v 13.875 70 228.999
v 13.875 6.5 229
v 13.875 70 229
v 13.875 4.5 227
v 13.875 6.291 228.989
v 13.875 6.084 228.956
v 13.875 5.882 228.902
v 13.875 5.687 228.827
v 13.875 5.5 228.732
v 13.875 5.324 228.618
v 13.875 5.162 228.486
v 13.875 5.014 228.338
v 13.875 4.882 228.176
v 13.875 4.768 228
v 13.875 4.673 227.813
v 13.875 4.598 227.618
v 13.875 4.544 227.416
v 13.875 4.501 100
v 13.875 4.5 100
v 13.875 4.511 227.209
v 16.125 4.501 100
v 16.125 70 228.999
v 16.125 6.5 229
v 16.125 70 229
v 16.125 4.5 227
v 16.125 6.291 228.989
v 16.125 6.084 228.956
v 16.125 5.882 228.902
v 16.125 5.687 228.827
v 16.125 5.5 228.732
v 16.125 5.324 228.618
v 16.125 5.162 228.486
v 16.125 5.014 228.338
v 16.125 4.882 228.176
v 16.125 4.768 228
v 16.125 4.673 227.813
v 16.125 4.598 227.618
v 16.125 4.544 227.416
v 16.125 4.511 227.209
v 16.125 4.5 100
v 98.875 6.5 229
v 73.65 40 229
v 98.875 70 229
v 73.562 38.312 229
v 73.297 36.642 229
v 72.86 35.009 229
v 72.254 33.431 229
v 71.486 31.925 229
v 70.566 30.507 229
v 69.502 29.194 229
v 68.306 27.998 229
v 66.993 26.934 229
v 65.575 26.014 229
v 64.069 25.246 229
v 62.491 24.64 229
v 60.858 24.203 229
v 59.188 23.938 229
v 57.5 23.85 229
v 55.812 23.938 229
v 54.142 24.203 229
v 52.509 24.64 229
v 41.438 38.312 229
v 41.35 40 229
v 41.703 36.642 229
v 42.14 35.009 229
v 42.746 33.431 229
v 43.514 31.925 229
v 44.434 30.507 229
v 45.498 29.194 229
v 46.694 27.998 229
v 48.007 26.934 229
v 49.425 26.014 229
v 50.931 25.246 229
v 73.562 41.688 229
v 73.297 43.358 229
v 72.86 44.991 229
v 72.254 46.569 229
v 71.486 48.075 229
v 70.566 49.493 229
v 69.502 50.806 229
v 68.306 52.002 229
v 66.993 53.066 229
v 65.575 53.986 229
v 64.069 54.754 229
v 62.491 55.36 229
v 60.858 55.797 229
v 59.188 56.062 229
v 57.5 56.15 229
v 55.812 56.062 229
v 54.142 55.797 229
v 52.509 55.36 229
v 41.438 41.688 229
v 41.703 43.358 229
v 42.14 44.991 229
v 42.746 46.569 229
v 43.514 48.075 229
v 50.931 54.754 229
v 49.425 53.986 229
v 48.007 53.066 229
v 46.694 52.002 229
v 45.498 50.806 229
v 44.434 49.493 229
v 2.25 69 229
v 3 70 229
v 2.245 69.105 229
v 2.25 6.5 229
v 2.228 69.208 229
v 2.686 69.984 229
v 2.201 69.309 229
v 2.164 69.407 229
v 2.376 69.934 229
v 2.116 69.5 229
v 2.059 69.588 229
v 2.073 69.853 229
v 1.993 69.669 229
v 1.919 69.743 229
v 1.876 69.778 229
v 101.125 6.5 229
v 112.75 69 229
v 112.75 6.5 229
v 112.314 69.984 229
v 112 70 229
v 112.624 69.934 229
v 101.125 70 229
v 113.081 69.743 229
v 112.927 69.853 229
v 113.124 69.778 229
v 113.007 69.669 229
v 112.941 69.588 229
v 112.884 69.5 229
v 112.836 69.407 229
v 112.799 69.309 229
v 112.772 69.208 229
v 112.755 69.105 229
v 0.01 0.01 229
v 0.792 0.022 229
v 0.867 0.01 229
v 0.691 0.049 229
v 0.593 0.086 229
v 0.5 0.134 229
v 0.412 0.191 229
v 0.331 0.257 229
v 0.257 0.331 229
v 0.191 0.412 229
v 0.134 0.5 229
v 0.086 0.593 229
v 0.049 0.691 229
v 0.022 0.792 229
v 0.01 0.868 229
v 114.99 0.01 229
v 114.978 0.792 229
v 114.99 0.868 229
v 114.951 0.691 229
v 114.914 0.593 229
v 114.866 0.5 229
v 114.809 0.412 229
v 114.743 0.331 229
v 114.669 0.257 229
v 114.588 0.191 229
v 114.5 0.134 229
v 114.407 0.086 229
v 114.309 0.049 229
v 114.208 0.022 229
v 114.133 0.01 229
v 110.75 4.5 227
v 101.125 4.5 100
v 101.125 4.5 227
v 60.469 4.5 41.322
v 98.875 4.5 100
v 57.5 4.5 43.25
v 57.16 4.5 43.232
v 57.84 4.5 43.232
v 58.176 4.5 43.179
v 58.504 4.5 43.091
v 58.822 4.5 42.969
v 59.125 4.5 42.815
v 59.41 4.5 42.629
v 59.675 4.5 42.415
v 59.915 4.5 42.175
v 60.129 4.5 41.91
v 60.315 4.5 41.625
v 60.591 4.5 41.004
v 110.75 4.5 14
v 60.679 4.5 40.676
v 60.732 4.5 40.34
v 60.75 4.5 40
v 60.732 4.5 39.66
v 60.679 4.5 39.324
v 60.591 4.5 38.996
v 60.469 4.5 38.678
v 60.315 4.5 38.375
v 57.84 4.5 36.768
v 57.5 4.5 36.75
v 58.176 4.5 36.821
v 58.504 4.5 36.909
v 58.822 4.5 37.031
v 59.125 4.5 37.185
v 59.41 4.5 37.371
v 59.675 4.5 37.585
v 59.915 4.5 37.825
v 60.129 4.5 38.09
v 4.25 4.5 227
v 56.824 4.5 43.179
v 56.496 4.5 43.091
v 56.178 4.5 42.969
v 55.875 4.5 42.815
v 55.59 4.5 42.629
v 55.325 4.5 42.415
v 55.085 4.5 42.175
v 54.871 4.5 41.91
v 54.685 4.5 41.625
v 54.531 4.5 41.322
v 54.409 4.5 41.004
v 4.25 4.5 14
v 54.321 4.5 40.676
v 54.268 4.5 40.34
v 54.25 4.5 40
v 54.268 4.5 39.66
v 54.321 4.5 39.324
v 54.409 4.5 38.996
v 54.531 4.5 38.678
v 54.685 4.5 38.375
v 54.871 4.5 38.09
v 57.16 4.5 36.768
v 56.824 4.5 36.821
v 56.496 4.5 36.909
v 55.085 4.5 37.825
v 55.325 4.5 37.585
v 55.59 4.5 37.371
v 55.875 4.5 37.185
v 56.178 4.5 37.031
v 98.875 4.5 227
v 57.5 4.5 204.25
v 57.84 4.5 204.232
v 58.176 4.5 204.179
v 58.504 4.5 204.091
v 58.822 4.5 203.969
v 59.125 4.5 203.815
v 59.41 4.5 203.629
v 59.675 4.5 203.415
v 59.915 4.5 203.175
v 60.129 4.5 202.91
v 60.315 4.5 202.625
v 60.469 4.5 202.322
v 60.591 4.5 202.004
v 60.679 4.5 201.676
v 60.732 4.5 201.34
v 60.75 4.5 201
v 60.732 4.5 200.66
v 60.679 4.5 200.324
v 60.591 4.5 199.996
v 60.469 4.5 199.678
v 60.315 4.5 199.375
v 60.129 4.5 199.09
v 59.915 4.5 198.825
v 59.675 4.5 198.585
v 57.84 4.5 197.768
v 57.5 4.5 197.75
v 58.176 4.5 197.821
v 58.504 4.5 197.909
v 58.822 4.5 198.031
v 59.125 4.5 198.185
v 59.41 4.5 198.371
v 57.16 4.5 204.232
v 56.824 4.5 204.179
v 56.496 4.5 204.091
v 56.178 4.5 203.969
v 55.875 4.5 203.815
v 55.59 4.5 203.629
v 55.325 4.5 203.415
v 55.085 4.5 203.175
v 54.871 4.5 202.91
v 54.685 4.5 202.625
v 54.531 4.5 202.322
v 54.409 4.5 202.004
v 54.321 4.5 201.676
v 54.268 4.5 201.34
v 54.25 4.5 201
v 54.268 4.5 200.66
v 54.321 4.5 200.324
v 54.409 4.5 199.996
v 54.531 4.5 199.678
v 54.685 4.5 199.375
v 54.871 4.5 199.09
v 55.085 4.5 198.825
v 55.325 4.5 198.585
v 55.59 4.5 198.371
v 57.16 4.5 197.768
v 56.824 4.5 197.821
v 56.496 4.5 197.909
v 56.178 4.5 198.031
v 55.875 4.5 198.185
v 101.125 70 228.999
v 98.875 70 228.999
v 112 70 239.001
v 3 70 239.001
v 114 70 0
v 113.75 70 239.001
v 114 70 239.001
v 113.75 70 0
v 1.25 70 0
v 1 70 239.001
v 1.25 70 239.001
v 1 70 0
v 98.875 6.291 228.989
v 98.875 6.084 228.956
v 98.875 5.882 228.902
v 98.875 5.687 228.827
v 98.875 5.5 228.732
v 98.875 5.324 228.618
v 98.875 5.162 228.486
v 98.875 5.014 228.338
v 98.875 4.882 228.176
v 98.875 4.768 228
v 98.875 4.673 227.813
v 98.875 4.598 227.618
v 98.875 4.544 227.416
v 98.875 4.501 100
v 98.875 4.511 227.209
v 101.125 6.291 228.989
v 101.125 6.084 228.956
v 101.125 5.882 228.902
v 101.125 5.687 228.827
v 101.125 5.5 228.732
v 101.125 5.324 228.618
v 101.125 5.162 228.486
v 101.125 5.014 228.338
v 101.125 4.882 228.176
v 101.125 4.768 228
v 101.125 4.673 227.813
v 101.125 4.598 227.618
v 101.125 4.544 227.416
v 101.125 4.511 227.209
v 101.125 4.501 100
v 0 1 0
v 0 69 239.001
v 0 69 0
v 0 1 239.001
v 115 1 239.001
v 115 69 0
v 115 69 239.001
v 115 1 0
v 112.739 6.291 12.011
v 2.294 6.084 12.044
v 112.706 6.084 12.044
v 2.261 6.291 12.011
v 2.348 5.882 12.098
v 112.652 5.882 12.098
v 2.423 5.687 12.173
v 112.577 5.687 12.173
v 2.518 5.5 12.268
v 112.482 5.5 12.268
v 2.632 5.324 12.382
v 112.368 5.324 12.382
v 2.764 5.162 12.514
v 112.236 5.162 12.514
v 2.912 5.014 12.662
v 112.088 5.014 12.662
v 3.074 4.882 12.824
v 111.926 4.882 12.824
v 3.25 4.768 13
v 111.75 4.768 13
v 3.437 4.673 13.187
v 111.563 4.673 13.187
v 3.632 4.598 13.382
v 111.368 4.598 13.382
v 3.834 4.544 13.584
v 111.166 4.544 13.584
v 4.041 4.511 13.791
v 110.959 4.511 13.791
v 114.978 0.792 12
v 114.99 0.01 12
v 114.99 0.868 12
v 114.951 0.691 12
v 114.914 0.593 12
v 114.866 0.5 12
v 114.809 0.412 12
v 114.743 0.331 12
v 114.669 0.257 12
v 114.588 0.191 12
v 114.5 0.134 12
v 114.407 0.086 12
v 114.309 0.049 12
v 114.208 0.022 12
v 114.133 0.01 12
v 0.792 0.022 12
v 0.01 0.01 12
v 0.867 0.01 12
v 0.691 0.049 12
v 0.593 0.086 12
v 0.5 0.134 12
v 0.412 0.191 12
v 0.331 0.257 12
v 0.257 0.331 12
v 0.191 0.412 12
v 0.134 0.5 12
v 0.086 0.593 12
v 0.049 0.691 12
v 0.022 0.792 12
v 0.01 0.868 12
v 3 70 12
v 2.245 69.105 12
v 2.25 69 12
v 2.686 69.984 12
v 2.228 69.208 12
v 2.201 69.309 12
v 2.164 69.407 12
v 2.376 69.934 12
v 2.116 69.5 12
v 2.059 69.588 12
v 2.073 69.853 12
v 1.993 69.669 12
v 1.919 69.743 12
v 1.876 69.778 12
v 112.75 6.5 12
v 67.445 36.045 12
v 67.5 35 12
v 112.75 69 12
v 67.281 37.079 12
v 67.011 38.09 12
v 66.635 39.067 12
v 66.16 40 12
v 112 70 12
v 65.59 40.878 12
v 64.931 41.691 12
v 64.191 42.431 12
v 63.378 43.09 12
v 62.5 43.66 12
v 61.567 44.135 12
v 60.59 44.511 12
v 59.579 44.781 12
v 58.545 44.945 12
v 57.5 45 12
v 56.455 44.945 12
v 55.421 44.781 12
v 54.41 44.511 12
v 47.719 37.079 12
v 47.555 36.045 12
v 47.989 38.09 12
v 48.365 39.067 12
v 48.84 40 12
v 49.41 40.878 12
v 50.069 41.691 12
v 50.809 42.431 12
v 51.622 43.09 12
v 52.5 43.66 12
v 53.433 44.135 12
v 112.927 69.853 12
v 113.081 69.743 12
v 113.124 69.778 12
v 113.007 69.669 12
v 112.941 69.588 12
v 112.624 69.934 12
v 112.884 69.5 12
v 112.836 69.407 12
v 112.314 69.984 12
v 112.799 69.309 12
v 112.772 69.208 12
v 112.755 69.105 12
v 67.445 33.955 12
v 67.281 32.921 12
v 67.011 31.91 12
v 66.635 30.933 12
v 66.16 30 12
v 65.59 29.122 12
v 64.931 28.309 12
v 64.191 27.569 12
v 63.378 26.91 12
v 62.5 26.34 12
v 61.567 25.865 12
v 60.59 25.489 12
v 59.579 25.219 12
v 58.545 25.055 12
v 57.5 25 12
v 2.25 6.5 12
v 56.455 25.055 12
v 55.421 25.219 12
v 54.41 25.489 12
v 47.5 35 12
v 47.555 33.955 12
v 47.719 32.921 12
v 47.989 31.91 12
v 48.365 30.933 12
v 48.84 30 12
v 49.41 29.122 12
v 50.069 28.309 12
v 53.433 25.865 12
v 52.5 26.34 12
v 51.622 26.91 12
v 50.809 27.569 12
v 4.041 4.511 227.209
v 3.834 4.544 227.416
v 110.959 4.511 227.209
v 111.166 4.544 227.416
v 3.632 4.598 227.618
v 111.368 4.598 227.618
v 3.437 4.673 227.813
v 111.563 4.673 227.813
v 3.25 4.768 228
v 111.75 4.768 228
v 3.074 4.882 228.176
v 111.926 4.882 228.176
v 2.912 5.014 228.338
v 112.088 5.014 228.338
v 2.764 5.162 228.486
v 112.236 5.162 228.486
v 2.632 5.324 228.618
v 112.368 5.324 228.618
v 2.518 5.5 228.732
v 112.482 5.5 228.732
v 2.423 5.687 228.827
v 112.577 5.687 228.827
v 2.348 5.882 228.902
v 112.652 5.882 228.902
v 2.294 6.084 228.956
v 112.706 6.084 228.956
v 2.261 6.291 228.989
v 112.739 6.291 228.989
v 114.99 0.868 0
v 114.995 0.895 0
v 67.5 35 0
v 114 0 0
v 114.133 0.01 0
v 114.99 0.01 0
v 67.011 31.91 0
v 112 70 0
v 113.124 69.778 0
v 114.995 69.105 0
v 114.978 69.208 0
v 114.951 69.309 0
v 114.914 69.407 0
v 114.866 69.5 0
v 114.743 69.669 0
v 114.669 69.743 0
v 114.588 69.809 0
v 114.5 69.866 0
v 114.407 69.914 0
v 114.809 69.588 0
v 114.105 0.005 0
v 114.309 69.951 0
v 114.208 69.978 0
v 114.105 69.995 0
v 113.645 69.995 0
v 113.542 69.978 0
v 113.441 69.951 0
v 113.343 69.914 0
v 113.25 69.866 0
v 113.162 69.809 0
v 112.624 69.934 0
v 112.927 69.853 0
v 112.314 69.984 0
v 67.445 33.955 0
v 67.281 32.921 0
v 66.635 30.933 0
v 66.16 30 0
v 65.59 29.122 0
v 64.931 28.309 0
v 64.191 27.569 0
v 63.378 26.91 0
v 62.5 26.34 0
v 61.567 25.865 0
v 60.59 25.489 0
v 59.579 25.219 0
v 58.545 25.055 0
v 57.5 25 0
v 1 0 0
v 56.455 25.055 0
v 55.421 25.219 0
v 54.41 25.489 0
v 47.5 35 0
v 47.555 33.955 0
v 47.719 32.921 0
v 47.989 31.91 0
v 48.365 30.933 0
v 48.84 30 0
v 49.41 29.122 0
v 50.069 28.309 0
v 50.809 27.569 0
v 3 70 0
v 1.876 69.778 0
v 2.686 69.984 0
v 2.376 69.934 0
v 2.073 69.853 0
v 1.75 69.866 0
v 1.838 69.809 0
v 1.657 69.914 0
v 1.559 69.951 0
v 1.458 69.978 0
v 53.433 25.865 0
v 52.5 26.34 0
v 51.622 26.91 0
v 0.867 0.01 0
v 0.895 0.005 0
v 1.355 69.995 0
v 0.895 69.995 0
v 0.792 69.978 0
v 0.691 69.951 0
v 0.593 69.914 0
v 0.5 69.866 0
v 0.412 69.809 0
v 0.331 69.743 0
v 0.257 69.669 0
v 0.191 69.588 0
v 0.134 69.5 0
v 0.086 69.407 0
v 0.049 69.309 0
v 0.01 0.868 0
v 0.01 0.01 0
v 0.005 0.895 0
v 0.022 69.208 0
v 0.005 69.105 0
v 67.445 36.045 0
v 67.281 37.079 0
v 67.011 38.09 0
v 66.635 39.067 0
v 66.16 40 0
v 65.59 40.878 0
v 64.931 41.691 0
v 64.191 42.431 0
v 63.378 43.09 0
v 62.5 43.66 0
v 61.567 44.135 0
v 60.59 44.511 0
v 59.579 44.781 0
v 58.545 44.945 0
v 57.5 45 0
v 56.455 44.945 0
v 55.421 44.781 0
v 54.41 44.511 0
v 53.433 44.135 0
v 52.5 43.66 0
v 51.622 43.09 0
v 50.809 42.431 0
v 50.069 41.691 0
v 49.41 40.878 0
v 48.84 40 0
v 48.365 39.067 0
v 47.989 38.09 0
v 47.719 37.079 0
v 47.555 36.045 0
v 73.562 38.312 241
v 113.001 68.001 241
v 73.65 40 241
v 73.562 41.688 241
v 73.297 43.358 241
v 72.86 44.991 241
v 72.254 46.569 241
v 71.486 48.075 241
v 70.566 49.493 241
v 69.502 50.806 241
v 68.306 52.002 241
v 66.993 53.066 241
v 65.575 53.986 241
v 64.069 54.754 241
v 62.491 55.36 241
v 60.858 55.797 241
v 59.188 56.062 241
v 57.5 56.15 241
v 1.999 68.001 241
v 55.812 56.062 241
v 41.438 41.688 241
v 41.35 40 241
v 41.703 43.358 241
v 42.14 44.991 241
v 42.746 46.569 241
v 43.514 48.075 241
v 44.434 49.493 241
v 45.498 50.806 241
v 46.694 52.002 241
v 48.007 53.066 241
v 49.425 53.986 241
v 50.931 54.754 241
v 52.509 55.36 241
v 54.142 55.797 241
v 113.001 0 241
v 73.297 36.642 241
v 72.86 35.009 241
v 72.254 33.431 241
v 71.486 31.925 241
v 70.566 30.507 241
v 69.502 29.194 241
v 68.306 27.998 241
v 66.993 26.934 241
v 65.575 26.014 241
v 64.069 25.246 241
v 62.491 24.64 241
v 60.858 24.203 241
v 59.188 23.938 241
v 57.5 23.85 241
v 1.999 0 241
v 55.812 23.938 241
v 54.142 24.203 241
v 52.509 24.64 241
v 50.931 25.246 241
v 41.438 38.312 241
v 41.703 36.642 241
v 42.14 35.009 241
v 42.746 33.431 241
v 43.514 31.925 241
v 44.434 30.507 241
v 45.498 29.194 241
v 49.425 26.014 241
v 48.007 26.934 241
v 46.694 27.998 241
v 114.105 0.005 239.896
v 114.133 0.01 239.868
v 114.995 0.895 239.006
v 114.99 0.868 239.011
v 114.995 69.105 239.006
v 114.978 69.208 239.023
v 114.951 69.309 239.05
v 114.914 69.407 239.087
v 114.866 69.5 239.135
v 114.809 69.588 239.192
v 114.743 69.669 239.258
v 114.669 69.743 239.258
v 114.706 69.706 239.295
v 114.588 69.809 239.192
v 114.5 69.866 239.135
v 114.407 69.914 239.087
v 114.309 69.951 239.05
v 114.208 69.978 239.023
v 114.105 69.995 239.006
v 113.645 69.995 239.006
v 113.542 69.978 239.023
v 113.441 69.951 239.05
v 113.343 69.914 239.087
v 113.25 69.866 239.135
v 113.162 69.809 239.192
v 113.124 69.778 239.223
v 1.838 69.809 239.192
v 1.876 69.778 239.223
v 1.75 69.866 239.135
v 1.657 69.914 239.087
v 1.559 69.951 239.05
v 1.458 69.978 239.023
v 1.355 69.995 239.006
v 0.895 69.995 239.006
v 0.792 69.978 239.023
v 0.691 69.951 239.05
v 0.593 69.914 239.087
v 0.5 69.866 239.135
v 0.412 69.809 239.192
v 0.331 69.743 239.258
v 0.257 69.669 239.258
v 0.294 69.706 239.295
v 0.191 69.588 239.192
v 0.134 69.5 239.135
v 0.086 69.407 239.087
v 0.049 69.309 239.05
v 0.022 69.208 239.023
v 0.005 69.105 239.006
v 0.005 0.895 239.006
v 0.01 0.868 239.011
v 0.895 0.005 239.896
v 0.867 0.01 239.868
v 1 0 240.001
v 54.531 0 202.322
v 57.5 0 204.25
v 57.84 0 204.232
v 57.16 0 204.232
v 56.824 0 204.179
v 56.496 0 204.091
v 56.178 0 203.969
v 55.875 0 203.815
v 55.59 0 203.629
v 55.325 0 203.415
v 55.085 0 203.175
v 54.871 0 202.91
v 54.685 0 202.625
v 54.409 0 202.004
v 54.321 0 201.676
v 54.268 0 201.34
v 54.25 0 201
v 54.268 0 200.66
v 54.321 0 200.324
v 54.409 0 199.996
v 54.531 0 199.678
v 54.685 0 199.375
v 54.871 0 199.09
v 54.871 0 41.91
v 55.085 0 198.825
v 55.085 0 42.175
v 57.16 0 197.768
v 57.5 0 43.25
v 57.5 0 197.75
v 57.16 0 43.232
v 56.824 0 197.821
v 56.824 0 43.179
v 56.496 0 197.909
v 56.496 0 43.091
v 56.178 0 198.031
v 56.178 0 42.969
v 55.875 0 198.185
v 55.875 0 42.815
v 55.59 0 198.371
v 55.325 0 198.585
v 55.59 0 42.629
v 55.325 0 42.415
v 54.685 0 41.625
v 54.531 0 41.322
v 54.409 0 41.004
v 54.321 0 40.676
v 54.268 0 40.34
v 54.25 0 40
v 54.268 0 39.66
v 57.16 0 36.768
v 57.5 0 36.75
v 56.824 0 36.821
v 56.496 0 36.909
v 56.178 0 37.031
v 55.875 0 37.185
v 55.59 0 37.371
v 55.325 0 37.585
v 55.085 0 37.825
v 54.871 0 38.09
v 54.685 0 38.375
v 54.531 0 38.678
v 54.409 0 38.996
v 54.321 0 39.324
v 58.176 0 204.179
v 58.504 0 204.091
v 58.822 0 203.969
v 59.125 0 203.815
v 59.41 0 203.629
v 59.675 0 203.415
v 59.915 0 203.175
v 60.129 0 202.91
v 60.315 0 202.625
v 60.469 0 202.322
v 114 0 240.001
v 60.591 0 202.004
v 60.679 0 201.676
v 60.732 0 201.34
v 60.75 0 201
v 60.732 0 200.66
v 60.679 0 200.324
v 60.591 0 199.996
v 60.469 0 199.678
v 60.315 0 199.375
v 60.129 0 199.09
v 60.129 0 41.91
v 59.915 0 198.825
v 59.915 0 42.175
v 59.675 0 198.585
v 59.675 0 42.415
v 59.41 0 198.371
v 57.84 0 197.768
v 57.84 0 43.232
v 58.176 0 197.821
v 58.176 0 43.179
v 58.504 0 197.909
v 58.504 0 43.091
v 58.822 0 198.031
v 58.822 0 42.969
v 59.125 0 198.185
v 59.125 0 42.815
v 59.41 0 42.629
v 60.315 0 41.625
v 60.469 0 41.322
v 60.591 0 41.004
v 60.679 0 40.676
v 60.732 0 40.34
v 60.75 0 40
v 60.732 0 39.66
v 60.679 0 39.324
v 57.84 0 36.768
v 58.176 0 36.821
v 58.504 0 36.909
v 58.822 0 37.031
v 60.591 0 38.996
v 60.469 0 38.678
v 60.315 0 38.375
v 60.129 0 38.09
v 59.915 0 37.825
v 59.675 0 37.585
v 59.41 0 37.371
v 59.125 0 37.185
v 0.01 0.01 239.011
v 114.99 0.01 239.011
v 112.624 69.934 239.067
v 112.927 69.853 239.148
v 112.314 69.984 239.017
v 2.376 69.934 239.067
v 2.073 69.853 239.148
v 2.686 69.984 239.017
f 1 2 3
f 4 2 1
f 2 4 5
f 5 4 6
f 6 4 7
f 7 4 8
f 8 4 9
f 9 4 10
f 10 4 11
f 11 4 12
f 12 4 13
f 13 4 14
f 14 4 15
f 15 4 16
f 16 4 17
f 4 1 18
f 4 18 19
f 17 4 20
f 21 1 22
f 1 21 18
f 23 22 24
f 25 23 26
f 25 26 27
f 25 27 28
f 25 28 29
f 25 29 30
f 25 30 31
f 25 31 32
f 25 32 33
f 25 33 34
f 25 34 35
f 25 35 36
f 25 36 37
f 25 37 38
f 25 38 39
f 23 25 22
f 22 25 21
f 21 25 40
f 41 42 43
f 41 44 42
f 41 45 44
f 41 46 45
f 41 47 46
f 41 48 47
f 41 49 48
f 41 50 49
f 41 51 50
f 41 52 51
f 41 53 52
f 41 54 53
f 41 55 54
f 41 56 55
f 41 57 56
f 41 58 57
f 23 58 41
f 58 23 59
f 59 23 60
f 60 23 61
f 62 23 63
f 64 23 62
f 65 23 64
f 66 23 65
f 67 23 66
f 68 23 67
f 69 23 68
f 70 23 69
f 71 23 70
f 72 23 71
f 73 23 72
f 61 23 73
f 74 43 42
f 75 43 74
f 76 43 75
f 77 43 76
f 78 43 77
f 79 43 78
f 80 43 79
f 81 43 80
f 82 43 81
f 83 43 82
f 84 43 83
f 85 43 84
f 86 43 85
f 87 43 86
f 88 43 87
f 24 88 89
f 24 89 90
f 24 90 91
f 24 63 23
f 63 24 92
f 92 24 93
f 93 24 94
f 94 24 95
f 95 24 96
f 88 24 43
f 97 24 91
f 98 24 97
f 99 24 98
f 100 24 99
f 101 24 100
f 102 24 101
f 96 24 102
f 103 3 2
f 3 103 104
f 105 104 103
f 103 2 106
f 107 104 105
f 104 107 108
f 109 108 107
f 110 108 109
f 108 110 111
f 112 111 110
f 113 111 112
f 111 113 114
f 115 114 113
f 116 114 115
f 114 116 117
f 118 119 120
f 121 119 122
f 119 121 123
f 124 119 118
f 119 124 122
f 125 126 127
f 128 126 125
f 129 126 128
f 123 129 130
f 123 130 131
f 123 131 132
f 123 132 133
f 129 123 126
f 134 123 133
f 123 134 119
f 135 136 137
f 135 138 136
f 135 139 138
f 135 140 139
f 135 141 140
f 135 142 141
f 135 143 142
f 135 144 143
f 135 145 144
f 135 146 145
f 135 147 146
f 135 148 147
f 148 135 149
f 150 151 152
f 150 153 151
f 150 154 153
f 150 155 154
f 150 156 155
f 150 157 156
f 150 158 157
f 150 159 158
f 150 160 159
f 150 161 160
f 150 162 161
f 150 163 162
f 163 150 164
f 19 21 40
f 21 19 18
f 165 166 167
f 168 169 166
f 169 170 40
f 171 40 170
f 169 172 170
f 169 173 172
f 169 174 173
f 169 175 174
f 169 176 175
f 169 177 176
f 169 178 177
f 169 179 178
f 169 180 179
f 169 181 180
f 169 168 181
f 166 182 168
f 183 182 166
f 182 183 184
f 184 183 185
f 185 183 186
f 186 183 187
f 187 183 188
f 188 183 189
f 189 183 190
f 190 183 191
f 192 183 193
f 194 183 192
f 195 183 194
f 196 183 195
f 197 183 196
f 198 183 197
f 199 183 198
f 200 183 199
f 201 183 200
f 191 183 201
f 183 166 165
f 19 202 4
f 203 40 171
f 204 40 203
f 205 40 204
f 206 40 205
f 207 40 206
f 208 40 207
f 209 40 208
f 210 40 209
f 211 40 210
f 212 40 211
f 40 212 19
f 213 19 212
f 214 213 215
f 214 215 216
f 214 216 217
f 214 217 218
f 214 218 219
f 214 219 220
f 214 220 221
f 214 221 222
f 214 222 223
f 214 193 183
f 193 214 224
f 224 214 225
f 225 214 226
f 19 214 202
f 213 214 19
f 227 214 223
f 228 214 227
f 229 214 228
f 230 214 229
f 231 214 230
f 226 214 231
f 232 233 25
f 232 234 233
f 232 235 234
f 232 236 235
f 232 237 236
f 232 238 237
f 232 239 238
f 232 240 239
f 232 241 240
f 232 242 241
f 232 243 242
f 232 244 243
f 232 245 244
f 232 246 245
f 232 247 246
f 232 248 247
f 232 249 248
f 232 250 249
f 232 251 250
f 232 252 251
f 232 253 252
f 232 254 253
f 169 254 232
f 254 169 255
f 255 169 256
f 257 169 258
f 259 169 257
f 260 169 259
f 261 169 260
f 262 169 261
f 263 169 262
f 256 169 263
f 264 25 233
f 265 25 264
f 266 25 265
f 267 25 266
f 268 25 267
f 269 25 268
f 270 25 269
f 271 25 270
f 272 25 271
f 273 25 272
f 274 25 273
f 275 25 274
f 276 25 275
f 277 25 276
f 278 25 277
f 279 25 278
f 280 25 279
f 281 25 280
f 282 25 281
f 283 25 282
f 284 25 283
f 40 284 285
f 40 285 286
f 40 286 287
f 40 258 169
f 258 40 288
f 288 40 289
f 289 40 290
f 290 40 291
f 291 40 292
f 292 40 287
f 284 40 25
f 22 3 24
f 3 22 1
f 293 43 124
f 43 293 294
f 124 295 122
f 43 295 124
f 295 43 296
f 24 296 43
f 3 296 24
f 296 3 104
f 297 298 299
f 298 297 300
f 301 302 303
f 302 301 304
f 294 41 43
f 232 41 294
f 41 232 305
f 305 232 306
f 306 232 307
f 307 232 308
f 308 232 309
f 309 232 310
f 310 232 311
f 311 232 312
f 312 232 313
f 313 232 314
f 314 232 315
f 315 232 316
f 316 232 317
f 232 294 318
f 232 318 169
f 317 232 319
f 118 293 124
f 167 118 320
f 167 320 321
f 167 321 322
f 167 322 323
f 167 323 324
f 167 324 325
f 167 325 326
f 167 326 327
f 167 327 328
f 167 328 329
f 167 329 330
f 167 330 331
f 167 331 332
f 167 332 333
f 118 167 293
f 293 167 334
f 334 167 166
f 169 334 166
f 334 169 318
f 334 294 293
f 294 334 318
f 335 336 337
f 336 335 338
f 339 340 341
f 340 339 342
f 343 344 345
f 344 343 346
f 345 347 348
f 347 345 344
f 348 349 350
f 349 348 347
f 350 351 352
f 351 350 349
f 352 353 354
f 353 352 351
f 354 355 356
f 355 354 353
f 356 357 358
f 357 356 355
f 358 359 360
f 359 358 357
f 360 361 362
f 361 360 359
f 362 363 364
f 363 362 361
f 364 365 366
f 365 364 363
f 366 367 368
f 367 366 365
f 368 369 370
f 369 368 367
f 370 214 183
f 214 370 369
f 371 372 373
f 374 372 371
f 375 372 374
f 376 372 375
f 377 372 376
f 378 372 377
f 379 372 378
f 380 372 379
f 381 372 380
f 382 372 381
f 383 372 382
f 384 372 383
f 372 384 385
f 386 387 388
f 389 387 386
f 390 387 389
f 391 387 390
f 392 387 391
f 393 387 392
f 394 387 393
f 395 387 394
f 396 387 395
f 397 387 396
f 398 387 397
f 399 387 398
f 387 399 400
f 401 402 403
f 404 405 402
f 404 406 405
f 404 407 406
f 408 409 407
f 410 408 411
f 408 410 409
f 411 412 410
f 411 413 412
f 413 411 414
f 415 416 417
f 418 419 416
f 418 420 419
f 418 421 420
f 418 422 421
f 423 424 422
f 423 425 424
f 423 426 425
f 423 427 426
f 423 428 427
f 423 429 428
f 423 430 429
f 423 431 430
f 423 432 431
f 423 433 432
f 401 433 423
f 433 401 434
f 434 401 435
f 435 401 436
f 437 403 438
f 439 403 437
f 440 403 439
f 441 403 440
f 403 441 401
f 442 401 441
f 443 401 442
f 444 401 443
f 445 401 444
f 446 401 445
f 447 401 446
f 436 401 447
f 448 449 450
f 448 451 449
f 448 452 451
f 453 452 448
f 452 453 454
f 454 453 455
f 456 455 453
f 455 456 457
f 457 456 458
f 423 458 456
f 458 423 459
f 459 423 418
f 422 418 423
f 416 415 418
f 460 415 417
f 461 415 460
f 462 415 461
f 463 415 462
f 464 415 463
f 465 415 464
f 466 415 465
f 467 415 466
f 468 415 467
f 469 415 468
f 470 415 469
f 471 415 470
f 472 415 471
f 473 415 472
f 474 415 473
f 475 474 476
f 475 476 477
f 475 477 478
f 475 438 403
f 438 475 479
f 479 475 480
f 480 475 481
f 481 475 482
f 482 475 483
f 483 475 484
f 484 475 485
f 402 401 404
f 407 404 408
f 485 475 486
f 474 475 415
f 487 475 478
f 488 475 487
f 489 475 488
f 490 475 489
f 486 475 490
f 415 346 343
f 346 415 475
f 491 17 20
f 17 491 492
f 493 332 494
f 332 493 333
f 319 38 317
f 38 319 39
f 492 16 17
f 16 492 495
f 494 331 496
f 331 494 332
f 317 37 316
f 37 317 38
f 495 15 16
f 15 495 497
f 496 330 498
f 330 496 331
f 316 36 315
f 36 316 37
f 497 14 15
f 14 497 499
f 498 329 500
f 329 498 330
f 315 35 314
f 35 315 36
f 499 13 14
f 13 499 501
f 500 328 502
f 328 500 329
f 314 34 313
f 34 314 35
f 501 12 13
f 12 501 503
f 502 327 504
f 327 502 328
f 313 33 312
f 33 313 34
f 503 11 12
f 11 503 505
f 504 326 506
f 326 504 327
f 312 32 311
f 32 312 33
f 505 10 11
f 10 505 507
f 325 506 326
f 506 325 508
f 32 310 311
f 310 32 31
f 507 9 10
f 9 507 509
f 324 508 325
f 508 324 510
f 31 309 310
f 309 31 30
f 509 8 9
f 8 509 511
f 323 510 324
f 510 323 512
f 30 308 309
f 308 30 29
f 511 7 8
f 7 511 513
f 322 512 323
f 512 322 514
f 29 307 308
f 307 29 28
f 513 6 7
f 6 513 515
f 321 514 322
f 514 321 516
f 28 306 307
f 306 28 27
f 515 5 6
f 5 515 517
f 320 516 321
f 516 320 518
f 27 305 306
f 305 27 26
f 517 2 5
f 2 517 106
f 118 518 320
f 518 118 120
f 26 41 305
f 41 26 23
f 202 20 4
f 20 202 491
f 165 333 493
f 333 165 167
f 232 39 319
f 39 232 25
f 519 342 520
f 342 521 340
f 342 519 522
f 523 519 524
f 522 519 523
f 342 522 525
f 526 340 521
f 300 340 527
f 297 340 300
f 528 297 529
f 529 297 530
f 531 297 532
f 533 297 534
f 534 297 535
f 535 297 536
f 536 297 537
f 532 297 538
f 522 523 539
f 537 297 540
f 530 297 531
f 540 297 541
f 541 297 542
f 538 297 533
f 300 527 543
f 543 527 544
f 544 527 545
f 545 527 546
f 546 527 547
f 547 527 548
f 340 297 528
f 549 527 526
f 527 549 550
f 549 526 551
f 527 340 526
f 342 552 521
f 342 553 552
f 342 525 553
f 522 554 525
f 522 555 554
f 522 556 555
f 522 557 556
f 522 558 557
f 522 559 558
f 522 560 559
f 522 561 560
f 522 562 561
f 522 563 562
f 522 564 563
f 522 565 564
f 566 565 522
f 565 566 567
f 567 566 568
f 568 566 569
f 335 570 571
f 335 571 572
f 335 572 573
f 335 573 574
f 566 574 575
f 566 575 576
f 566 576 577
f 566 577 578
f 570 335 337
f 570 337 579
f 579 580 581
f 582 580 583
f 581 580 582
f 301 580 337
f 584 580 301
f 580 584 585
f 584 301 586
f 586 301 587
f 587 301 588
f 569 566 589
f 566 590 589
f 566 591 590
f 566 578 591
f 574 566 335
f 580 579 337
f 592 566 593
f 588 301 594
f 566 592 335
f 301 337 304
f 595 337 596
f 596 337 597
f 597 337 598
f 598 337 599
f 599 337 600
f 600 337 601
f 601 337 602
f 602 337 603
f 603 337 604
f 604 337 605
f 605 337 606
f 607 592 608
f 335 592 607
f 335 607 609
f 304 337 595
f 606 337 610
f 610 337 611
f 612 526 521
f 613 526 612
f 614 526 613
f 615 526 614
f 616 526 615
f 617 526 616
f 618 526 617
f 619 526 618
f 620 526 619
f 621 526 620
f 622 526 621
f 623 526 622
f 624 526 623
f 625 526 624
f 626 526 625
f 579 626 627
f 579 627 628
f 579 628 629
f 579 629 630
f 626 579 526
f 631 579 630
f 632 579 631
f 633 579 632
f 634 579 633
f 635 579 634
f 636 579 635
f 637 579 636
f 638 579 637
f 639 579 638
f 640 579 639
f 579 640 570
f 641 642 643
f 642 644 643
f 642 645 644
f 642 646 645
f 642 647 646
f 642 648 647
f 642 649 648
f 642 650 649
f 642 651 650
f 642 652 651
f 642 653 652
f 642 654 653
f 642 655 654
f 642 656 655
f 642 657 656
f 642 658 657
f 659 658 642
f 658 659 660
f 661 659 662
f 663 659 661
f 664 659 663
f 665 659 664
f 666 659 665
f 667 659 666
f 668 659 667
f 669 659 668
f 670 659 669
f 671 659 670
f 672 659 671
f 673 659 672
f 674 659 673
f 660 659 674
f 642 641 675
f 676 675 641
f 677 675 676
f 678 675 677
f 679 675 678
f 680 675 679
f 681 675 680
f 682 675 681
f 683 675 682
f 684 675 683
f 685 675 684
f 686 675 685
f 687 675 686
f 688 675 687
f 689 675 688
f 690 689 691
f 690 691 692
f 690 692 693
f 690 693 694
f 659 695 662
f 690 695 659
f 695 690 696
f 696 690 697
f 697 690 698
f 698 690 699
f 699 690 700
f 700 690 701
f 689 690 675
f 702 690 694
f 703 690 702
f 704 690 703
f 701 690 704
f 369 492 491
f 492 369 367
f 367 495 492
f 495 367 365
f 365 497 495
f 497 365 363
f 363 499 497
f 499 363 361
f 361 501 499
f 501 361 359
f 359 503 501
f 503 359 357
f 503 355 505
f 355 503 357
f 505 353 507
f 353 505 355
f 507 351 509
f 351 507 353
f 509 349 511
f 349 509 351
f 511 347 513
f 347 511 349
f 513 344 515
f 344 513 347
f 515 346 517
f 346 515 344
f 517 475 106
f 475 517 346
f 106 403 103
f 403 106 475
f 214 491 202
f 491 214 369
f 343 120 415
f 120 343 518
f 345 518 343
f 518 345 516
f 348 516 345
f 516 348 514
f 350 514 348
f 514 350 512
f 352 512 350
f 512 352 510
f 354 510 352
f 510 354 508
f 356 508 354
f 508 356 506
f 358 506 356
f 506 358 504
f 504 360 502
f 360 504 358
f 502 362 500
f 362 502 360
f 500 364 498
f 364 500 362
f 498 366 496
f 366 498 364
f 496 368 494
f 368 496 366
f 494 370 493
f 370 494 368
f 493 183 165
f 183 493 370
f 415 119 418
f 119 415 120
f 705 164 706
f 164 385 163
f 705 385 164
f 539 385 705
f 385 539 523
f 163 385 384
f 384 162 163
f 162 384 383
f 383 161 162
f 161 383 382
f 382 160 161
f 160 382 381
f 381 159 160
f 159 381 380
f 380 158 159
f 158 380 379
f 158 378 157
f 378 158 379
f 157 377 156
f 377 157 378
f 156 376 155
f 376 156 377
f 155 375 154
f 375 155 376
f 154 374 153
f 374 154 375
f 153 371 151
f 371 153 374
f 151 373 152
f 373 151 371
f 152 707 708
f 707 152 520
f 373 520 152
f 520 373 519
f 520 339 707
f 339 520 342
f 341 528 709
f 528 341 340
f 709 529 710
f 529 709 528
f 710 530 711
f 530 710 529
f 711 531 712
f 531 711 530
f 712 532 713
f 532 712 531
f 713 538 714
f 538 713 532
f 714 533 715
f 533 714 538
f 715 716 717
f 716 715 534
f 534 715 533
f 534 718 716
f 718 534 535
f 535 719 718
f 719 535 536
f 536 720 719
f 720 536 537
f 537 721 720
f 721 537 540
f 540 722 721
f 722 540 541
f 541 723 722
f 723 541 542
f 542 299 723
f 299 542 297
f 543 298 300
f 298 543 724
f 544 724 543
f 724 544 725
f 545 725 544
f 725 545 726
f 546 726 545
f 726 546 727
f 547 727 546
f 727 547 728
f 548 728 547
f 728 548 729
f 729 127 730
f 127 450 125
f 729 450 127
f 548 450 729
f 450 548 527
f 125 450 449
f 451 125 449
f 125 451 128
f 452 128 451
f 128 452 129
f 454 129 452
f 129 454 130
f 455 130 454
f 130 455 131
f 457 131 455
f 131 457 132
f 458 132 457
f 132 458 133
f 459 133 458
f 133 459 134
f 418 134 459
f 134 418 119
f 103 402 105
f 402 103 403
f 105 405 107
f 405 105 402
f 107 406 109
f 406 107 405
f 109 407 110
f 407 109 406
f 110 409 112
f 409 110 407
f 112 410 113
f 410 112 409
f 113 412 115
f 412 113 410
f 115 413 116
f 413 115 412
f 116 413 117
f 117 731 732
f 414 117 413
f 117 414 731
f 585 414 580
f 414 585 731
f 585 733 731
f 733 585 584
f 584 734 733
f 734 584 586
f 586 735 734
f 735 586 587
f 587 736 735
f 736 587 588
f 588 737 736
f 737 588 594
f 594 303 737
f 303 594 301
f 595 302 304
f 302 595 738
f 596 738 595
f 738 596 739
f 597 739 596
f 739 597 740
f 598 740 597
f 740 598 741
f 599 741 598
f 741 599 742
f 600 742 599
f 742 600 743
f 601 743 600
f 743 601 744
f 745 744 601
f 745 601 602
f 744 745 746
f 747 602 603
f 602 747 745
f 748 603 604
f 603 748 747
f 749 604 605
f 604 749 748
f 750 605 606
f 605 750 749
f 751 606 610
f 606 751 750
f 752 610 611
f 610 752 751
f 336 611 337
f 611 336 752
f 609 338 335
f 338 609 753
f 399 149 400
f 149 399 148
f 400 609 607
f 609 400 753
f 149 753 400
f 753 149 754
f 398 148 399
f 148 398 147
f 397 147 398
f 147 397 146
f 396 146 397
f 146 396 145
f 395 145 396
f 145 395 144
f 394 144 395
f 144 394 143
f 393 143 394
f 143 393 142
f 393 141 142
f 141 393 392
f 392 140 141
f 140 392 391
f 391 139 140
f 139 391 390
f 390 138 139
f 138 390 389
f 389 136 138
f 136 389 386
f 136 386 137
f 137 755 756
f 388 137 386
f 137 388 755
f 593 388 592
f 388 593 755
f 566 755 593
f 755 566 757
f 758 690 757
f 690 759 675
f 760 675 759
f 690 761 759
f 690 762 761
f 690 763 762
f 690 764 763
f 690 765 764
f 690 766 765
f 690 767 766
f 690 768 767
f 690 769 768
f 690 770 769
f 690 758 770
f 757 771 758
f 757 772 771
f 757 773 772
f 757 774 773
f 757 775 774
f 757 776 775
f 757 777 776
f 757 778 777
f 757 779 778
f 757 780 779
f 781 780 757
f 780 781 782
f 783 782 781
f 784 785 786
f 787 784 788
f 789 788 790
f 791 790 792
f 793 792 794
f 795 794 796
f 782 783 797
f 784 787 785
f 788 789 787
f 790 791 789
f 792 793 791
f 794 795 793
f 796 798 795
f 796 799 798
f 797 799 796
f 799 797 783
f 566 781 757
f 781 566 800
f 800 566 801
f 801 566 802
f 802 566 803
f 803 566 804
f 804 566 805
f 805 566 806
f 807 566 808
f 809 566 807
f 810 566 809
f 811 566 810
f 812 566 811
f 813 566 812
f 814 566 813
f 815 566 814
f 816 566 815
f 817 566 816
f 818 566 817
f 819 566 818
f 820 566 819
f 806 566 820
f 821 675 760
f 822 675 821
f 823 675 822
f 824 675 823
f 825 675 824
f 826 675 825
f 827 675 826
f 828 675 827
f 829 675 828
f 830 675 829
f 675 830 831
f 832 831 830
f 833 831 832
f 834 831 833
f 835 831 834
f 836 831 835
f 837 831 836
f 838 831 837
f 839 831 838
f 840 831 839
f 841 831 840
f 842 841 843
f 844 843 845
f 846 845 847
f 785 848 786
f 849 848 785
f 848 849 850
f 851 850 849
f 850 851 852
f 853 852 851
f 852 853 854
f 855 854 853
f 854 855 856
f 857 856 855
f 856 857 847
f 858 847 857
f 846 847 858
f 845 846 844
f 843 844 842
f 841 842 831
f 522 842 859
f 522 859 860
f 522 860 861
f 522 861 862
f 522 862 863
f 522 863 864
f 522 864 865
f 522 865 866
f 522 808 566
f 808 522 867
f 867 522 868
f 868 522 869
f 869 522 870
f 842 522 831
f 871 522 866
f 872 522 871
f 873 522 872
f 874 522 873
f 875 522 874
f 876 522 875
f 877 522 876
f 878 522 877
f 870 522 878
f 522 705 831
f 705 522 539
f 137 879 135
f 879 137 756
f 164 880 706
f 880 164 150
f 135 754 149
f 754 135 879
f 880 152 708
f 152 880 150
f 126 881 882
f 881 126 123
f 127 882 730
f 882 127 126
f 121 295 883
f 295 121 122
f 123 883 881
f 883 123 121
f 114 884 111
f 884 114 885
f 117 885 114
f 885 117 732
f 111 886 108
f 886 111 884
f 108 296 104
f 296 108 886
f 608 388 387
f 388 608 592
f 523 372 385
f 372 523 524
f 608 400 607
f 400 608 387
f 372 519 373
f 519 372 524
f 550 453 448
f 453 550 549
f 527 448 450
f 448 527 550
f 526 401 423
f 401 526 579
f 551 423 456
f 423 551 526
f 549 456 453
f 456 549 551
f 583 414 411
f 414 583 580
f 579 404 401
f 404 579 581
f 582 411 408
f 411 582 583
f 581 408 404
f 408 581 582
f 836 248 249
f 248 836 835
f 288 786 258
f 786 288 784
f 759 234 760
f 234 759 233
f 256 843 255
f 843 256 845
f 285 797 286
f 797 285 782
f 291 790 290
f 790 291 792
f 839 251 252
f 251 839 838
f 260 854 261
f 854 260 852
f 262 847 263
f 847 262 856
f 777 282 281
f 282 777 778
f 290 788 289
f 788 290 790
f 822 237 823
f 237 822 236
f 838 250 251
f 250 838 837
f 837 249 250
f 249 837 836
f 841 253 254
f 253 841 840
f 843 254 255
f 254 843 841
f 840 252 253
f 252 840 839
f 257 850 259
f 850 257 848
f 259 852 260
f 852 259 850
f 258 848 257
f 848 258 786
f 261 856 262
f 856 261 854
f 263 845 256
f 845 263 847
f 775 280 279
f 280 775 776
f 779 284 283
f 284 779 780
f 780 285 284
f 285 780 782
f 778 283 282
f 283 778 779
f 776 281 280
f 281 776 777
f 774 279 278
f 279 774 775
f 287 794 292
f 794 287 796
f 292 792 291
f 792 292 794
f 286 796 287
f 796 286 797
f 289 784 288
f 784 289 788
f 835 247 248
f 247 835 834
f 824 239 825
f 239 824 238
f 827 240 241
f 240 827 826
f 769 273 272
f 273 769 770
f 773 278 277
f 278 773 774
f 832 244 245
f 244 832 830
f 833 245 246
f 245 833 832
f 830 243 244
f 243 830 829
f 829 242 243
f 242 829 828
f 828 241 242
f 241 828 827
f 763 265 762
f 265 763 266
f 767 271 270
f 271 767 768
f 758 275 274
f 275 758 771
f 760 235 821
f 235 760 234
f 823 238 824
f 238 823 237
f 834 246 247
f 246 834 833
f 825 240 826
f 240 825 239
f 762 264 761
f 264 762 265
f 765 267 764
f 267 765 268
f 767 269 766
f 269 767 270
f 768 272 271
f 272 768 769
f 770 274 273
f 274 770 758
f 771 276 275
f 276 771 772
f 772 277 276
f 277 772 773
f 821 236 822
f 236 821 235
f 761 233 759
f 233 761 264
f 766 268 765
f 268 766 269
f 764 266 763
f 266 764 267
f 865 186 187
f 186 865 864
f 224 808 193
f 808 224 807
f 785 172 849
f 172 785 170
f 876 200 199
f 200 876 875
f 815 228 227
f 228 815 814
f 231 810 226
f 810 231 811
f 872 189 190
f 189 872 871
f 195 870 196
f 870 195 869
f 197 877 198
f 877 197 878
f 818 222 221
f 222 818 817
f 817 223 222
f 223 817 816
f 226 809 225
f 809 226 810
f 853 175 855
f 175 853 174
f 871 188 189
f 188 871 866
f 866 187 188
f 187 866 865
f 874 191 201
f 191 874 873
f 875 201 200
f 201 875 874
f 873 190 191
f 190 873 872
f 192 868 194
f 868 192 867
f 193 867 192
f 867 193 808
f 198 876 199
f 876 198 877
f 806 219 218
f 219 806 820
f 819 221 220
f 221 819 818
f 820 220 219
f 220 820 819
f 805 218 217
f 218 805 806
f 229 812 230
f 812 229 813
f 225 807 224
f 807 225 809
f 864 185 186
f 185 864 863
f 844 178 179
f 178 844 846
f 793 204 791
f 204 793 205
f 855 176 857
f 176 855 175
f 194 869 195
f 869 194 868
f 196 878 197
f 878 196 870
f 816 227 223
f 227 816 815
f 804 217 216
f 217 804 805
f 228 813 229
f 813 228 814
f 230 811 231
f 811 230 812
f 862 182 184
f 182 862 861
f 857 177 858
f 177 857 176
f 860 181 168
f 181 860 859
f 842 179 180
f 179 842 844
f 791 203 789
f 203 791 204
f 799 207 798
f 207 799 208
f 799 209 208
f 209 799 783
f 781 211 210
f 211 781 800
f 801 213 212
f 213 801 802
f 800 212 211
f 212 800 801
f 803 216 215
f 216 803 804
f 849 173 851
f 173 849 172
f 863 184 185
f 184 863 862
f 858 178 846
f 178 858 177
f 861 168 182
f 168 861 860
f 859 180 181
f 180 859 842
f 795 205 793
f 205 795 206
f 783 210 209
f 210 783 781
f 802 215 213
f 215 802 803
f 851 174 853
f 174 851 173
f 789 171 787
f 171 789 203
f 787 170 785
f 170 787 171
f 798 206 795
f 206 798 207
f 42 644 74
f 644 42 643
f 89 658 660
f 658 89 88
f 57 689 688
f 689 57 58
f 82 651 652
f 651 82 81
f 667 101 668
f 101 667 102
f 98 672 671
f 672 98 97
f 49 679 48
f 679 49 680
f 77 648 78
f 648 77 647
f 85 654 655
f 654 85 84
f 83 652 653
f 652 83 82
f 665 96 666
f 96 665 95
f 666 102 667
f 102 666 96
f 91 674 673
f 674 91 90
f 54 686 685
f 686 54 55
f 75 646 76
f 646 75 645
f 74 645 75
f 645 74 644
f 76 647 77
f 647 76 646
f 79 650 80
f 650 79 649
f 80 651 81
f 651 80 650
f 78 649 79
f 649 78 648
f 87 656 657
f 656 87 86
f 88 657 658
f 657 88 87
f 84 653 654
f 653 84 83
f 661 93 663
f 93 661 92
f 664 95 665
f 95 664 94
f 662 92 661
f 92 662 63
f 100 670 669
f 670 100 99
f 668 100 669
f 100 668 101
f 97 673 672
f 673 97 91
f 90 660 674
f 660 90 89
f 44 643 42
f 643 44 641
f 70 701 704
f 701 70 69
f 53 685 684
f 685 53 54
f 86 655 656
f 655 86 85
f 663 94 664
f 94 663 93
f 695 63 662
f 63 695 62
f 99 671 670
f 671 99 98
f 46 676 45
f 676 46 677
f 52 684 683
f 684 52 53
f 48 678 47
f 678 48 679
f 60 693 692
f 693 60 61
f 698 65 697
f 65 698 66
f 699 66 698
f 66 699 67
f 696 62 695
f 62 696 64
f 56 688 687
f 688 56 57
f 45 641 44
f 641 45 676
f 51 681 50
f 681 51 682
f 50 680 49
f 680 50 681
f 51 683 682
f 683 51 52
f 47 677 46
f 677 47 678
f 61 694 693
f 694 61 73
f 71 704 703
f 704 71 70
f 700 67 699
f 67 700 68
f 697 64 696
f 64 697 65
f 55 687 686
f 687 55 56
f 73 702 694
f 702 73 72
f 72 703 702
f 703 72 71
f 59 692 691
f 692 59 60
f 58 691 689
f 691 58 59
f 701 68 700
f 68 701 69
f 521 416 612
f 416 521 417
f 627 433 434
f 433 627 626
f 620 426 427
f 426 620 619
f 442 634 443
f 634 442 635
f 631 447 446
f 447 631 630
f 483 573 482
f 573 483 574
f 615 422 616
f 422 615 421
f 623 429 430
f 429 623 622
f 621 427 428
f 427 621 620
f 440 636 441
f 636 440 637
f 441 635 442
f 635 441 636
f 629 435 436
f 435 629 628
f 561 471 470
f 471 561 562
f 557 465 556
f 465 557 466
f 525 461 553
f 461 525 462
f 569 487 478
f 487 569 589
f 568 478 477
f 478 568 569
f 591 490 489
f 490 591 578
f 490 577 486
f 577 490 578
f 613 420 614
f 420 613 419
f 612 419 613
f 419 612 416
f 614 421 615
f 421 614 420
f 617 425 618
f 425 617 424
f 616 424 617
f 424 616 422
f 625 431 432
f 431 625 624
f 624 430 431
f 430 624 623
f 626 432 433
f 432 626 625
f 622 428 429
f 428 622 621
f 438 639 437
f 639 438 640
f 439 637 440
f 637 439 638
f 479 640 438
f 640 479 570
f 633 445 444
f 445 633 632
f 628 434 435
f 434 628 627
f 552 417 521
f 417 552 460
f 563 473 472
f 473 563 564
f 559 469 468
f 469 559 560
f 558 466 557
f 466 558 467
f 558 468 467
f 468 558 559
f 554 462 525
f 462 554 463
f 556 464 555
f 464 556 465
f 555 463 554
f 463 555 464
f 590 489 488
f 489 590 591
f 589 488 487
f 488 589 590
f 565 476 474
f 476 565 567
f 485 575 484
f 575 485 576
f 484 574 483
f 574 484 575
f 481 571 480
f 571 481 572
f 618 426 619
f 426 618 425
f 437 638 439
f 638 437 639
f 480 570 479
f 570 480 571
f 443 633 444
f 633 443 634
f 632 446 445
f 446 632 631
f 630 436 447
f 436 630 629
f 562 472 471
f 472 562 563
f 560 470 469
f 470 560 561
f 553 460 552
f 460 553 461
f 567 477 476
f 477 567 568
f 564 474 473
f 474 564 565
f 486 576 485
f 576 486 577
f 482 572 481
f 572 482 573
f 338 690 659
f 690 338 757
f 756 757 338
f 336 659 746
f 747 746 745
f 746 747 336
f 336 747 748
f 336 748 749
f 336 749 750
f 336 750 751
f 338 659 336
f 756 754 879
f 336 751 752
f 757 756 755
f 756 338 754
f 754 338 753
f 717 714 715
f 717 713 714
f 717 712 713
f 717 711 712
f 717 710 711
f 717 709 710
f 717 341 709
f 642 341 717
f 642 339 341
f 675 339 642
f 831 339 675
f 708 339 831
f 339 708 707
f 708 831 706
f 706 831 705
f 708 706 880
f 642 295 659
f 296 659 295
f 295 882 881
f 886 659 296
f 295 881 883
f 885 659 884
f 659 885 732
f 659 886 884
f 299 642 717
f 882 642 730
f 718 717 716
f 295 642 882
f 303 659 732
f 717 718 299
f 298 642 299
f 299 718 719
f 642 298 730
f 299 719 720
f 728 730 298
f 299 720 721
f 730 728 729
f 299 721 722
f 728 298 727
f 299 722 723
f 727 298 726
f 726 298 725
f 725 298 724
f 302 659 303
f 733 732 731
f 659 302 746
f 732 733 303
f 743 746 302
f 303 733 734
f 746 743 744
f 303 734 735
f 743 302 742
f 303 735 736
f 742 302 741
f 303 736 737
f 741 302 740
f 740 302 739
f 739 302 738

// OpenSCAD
// Hand Pump Wall Mount Bracket v2
// Breha hand pump (Camec SKU 005543) wall mount for camp trailer
//
// Coordinate system:
//   X = width (0→115mm), left-right viewing from front
//   Y = depth (0→70mm), 0 = wall/back, 70 = front
//   Z = height (0→241mm), 0 = bottom, 241 = top
//
// Single piece — fits Bambu Lab X1C build volume (256×256×256mm).

/* [Part Selection] */
part = "full"; // ["full"]

/* [Main Dimensions] */
bracket_width  = 115;   // mm - X axis
bracket_depth  = 70;    // mm - Y axis
bracket_height = 241;   // mm - Z axis

/* [Wall Thicknesses] */
back_thick   = 4.5;    // mm - back plate (10 perimeters)
shelf_thick  = 12;     // mm - top shelf
plate_thick  = 12;     // mm - bottom plate
wall_thick   = 2.25;   // mm - side walls (5 perimeters)
rib_thick    = 2.25;   // mm - gusset ribs (5 perimeters)

/* [Holes] */
tap_hole_dia   = 32.3;  // mm - 32mm + 0.3mm PETG tolerance
hose_hole_dia  = 20;    // mm - 12mm hose + clearance
wall_bolt_dia  = 6.5;   // mm - M6 clearance

/* [Aesthetics] */
corner_radius = 3;     // mm - external corner rounding (shelf/plate front corners)
edge_round    = 1;     // mm - external vertical edge rounding
fillet_radius = 2;     // mm - internal structural fillets
top_chamfer   = 2;     // mm - top edge 45-degree chamfer

/* [Bolt Positions] */
upper_bolt_z = 201;    // mm - upper M6 wall bolt (40mm from top)
lower_bolt_z = 40;     // mm - lower M6 wall bolt (40mm from bottom)
bolt_x       = 57.5;   // mm - centered

/* [Tap & Hose Positions] */
tap_x  = 57.5;  // mm - centered on shelf
tap_y  = 40;    // mm - 40mm from wall
hose_x = 57.5;  // mm - centered on bottom plate
hose_y = 35;    // mm - centered on bottom plate

/* [Gusset Geometry] */
gusset_inboard = 15;   // mm - inboard from side walls
gusset_bot_z   = 100;  // mm - bottom of gusset ribs

/* [Resolution] */
$fn = 60;

// Derived
fudge = 0.01;  // CSG overlap for clean booleans
eps = 0.001;   // tiny dimension for hull vertices


// ============================================================
// 2D profiles
// ============================================================

// Concave fillet profile — fills the first quadrant (+X, +Y)
// Place at an internal 90-degree corner where material is in -X and -Y
module fillet_2d(r) {
    difference() {
        square(r);
        translate([r, r]) circle(r = r);
    }
}

// Rounded rectangle 2D — only front two corners rounded
// Back corners stay square (flush against wall)
module shelf_plate_2d(w, d, r) {
    hull() {
        // Back-left: square corner
        translate([fudge, fudge])
            square(fudge);
        // Back-right: square corner
        translate([w - 2 * fudge, fudge])
            square(fudge);
        // Front-left: rounded
        translate([r, d - r])
            circle(r = r);
        // Front-right: rounded
        translate([w - r, d - r])
            circle(r = r);
    }
}

// U-section 2D profile (back plate + side walls) with rounded external corners
// Uses offset(r) offset(-r) for external-only rounding
module u_section_2d() {
    r = min(edge_round, wall_thick / 2 - 0.1);  // cap rounding to fit thin walls
    offset(r = r) offset(r = -r) {
        // Back plate
        square([bracket_width, back_thick]);
        // Left wall
        square([wall_thick, bracket_depth]);
        // Right wall
        translate([bracket_width - wall_thick, 0])
            square([wall_thick, bracket_depth]);
    }
}


// ============================================================
// 3D components
// ============================================================

// Side walls + back plate — full height, using rounded 2D profile
module walls_and_back() {
    linear_extrude(height = bracket_height)
        u_section_2d();
}

// Top shelf — rounded front corners
module top_shelf() {
    translate([0, 0, bracket_height - shelf_thick])
        linear_extrude(height = shelf_thick)
            shelf_plate_2d(bracket_width, bracket_depth, corner_radius);
}

// Bottom plate — rounded front corners
module bottom_plate() {
    linear_extrude(height = plate_thick)
        shelf_plate_2d(bracket_width, bracket_depth, corner_radius);
}

// Diagonal gusset rib — triangular prism, rib_thick in X, triangle in YZ
// From shelf underside at front edge, down to back plate at gusset_bot_z
module gusset_rib() {
    gusset_top_z = bracket_height - shelf_thick;

    hull() {
        // Top-back edge
        translate([0, back_thick, gusset_top_z - eps])
            cube([rib_thick, eps, eps]);
        // Top-front edge
        translate([0, bracket_depth - eps, gusset_top_z - eps])
            cube([rib_thick, eps, eps]);
        // Bottom-back edge
        translate([0, back_thick, gusset_bot_z])
            cube([rib_thick, eps, eps]);
    }
}

// Both gusset ribs positioned symmetrically
module gusset_ribs() {
    // Left gusset — centered at X = gusset_inboard
    translate([gusset_inboard - rib_thick / 2, 0, 0])
        gusset_rib();
    // Right gusset — centered at X = bracket_width - gusset_inboard
    translate([bracket_width - gusset_inboard - rib_thick / 2, 0, 0])
        gusset_rib();
}


// ============================================================
// Holes
// ============================================================

module bolt_hole(d, h) {
    cylinder(d = d, h = h + 2 * fudge);
}

// Tap hole — 32.3mm through top shelf
module tap_hole() {
    translate([tap_x, tap_y, bracket_height - shelf_thick - fudge])
        cylinder(d = tap_hole_dia, h = shelf_thick + 2 * fudge);
}

// Hose hole — 20mm through bottom plate
module hose_hole() {
    translate([hose_x, hose_y, -fudge])
        cylinder(d = hose_hole_dia, h = plate_thick + 2 * fudge);
}

// Wall mounting bolt holes — 2x M6, through back plate along Y axis
module wall_bolt_holes() {
    for (z = [upper_bolt_z, lower_bolt_z]) {
        translate([bolt_x, -fudge, z])
            rotate([-90, 0, 0])
                bolt_hole(wall_bolt_dia, back_thick);
    }
}

// All holes combined
module all_holes() {
    tap_hole();
    hose_hole();
    wall_bolt_holes();
}


// ============================================================
// Structural fillets — additive geometry at internal corners
// ============================================================

module structural_fillets() {
    r = fillet_radius;

    // --- Back plate to bottom plate (X-aligned fillet) ---
    // Corner at Y=back_thick, Z=plate_thick; fillet fills +Y, +Z quadrant
    translate([0, back_thick, plate_thick])
        rotate([90, 0, 90])
            linear_extrude(height = bracket_width)
                fillet_2d(r);

    // --- Back plate to shelf underside (X-aligned fillet) ---
    // Corner at Y=back_thick, Z=bracket_height-shelf_thick
    // Fillet fills +Y, -Z quadrant — mirror the 2D profile in Y
    translate([0, back_thick, bracket_height - shelf_thick])
        rotate([90, 0, 90])
            linear_extrude(height = bracket_width)
                mirror([0, 1])
                    fillet_2d(r);

    // --- Left wall to back plate (Z-aligned fillet) ---
    // Corner at X=wall_thick, Y=back_thick; fillet fills +X, +Y quadrant
    translate([wall_thick, back_thick, 0])
        linear_extrude(height = bracket_height)
            fillet_2d(r);

    // --- Right wall to back plate (Z-aligned fillet) ---
    // Corner at X=bracket_width-wall_thick, Y=back_thick
    // Fillet fills -X, +Y quadrant — mirror in X
    translate([bracket_width - wall_thick, back_thick, 0])
        linear_extrude(height = bracket_height)
            mirror([1, 0])
                fillet_2d(r);
}


// ============================================================
// Top edge chamfers — 45-degree bevel on front, left, and right
// Back edge (wall side) is not chamfered.
//
// Constructed as: bounding block minus a frustum that tapers
// inward at the top. Subtracting this from the bracket creates
// the chamfer wedges on all three exposed top edges at once.
// ============================================================

module top_edge_chamfers() {
    c = top_chamfer;

    difference() {
        // Block covering the chamfer zone
        translate([-fudge, -fudge, bracket_height - c])
            cube([bracket_width + 2 * fudge,
                  bracket_depth + 2 * fudge,
                  c + fudge]);

        // Frustum to keep: full footprint at Z=bh-c, inset at Z=bh
        hull() {
            // Bottom: full bracket footprint
            translate([0, 0, bracket_height - c])
                linear_extrude(height = eps)
                    square([bracket_width, bracket_depth]);
            // Top: inset by c on left, right, and front (not back)
            translate([c, 0, bracket_height])
                linear_extrude(height = eps)
                    square([bracket_width - 2 * c, bracket_depth - c]);
        }
    }
}


// ============================================================
// Complete bracket
// ============================================================

module bracket_body() {
    union() {
        walls_and_back();
        top_shelf();
        bottom_plate();
        gusset_ribs();
        structural_fillets();
    }
}

module bracket_complete() {
    difference() {
        bracket_body();
        all_holes();
        top_edge_chamfers();
    }
}


// ============================================================
// Render
// ============================================================

bracket_complete();
